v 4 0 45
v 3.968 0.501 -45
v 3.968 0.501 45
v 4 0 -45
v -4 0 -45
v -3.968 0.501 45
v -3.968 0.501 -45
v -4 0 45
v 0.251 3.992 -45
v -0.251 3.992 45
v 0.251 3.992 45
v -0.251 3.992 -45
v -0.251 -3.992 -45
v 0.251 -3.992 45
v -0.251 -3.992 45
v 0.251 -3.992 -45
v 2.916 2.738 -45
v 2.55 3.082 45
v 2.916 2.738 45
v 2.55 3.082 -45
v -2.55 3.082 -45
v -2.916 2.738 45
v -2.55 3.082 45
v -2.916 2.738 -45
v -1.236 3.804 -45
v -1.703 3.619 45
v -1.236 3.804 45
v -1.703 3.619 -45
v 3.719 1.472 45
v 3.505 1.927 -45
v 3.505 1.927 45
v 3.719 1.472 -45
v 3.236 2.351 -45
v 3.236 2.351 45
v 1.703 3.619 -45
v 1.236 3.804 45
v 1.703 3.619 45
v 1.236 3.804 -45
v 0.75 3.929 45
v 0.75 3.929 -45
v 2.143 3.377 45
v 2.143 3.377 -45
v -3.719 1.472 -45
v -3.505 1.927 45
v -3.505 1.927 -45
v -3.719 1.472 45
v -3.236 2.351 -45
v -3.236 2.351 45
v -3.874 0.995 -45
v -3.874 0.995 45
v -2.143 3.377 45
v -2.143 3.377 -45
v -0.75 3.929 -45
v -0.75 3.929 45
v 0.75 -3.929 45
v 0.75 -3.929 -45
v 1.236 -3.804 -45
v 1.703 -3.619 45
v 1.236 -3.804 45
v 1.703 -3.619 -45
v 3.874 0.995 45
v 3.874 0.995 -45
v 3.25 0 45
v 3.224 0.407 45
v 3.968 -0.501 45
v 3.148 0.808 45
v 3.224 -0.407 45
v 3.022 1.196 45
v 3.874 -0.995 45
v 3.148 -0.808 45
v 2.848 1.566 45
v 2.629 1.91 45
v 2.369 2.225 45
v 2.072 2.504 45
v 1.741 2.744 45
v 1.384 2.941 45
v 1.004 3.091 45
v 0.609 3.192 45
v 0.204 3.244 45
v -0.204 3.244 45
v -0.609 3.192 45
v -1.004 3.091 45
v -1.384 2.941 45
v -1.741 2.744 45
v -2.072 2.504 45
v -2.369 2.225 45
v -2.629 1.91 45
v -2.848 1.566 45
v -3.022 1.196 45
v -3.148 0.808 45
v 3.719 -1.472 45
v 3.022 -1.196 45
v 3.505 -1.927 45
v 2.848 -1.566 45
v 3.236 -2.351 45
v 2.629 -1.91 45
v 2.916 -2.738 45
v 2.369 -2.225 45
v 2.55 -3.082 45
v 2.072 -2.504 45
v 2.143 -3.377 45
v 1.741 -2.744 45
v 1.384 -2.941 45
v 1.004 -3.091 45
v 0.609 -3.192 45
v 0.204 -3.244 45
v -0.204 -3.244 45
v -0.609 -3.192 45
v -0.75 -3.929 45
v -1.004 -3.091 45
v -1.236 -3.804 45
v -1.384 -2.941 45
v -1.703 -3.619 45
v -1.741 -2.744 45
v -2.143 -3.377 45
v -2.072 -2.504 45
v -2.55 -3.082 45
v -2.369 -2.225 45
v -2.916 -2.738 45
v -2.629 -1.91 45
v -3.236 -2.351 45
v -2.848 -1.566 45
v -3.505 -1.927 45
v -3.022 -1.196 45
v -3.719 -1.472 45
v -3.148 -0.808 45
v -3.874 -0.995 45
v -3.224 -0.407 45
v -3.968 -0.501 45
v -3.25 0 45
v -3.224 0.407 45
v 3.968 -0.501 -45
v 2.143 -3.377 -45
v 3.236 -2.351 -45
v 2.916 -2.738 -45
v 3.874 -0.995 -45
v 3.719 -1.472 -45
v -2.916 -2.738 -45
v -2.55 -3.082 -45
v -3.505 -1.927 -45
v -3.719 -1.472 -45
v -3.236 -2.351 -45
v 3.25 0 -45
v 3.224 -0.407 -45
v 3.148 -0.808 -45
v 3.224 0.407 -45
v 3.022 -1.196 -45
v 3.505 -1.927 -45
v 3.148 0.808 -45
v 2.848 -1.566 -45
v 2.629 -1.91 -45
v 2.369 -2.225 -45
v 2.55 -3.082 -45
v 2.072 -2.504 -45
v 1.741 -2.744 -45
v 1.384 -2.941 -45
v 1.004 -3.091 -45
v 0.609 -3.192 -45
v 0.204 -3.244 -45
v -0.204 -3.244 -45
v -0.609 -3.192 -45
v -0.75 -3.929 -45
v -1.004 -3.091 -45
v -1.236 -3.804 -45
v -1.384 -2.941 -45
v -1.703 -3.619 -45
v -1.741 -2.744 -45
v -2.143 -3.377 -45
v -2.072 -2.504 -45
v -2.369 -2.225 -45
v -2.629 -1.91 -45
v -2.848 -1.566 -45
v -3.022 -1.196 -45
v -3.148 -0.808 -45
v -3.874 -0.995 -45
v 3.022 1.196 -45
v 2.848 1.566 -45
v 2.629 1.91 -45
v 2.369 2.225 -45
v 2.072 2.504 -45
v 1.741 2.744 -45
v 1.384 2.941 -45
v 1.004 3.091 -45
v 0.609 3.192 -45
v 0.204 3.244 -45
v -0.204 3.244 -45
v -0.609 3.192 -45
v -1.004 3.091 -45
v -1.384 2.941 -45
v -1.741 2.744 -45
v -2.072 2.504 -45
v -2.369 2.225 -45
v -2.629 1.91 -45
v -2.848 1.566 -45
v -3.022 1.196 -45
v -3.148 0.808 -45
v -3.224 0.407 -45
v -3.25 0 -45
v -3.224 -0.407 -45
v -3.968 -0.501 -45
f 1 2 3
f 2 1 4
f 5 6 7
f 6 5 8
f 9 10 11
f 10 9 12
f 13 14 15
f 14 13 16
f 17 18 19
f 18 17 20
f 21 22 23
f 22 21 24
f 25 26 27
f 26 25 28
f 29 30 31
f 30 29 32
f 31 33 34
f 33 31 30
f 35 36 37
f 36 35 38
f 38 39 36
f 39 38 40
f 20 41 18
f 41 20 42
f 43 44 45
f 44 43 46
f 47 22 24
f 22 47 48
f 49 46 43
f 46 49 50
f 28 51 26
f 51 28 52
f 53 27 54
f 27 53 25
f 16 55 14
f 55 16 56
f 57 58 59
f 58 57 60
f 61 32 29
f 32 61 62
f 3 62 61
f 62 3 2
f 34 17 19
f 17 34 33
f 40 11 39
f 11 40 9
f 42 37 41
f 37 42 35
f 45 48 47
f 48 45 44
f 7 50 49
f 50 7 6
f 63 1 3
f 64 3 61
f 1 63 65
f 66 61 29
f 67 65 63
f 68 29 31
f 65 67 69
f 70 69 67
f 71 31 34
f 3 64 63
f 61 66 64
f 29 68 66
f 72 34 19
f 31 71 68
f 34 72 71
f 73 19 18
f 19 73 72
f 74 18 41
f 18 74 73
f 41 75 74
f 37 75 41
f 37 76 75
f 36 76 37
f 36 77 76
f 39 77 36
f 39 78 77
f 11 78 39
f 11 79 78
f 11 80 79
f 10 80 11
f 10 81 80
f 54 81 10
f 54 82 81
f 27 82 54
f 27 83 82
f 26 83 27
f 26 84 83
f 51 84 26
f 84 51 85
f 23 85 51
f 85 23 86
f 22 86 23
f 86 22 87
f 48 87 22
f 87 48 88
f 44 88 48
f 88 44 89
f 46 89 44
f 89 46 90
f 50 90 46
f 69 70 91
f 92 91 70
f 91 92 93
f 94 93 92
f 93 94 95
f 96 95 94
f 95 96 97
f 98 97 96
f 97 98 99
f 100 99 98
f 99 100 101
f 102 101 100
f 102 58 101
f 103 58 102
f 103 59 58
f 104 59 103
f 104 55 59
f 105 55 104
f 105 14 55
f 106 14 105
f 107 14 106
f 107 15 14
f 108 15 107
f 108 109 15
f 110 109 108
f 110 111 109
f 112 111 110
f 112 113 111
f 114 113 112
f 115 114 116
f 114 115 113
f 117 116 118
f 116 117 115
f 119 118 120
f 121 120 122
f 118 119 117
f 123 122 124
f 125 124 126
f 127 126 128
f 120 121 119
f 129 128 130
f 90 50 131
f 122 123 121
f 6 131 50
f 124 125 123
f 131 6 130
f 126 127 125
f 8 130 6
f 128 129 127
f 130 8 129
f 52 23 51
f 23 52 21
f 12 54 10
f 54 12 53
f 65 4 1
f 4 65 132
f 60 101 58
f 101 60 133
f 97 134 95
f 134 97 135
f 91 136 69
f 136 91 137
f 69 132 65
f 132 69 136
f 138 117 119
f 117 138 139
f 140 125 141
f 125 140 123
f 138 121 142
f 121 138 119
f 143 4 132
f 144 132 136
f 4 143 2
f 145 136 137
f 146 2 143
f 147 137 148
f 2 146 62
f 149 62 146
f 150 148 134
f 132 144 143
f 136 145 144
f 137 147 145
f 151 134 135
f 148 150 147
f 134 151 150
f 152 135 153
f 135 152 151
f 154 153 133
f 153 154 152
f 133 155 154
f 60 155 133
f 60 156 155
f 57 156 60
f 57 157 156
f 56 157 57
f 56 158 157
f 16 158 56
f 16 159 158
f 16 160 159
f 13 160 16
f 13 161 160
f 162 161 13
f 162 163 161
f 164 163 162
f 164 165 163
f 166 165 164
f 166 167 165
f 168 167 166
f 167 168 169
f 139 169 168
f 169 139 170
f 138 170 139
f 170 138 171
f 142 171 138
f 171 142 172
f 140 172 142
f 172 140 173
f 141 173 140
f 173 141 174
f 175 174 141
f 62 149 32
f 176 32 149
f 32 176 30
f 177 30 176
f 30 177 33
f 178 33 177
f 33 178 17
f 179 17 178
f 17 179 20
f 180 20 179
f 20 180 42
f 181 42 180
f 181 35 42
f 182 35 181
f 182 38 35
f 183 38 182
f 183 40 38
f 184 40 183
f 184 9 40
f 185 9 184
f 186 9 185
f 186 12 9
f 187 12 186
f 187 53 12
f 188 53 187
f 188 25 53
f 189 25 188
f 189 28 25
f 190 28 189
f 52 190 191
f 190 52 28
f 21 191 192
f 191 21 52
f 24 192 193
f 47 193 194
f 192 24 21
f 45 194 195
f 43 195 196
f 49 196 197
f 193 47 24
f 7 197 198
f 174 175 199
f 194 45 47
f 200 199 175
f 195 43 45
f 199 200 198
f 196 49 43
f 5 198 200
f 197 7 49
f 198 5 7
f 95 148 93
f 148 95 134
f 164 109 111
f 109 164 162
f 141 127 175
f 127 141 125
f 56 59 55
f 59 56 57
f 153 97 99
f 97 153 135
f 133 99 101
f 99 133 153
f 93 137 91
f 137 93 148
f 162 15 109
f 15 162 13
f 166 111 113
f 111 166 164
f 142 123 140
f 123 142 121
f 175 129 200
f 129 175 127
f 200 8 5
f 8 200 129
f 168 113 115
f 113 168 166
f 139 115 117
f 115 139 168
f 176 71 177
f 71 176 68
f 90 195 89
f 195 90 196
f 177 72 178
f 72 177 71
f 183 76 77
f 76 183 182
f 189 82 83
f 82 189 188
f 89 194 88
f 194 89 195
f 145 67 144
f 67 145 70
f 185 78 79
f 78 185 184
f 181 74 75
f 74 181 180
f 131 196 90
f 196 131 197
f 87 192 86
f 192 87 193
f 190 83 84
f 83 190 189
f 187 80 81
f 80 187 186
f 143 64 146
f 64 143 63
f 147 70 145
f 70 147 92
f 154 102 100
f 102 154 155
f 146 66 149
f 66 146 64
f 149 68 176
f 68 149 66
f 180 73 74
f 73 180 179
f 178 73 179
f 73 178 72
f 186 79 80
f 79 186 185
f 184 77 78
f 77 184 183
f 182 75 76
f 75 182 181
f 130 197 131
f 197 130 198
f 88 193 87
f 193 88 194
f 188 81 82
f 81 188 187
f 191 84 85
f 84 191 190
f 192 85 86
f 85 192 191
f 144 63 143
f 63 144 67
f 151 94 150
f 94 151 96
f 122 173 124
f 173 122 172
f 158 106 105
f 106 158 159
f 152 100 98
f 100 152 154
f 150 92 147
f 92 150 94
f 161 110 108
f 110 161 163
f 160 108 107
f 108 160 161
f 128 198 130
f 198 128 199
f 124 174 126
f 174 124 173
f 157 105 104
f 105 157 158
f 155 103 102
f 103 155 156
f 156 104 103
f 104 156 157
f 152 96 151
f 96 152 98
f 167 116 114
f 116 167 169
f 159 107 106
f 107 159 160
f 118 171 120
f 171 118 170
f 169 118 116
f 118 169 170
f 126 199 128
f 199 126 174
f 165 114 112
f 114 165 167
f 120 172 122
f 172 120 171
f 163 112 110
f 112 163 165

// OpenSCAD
$fn = 50;


difference() {
	union() {
		translate(v = [0, 0, -45.0000000000]) {
			cylinder(h = 90, r = 4.0000000000);
		}
	}
	union() {
		translate(v = [0, 0, -100.0000000000]) {
			cylinder(h = 200, r = 3.2500000000);
		}
	}
}
